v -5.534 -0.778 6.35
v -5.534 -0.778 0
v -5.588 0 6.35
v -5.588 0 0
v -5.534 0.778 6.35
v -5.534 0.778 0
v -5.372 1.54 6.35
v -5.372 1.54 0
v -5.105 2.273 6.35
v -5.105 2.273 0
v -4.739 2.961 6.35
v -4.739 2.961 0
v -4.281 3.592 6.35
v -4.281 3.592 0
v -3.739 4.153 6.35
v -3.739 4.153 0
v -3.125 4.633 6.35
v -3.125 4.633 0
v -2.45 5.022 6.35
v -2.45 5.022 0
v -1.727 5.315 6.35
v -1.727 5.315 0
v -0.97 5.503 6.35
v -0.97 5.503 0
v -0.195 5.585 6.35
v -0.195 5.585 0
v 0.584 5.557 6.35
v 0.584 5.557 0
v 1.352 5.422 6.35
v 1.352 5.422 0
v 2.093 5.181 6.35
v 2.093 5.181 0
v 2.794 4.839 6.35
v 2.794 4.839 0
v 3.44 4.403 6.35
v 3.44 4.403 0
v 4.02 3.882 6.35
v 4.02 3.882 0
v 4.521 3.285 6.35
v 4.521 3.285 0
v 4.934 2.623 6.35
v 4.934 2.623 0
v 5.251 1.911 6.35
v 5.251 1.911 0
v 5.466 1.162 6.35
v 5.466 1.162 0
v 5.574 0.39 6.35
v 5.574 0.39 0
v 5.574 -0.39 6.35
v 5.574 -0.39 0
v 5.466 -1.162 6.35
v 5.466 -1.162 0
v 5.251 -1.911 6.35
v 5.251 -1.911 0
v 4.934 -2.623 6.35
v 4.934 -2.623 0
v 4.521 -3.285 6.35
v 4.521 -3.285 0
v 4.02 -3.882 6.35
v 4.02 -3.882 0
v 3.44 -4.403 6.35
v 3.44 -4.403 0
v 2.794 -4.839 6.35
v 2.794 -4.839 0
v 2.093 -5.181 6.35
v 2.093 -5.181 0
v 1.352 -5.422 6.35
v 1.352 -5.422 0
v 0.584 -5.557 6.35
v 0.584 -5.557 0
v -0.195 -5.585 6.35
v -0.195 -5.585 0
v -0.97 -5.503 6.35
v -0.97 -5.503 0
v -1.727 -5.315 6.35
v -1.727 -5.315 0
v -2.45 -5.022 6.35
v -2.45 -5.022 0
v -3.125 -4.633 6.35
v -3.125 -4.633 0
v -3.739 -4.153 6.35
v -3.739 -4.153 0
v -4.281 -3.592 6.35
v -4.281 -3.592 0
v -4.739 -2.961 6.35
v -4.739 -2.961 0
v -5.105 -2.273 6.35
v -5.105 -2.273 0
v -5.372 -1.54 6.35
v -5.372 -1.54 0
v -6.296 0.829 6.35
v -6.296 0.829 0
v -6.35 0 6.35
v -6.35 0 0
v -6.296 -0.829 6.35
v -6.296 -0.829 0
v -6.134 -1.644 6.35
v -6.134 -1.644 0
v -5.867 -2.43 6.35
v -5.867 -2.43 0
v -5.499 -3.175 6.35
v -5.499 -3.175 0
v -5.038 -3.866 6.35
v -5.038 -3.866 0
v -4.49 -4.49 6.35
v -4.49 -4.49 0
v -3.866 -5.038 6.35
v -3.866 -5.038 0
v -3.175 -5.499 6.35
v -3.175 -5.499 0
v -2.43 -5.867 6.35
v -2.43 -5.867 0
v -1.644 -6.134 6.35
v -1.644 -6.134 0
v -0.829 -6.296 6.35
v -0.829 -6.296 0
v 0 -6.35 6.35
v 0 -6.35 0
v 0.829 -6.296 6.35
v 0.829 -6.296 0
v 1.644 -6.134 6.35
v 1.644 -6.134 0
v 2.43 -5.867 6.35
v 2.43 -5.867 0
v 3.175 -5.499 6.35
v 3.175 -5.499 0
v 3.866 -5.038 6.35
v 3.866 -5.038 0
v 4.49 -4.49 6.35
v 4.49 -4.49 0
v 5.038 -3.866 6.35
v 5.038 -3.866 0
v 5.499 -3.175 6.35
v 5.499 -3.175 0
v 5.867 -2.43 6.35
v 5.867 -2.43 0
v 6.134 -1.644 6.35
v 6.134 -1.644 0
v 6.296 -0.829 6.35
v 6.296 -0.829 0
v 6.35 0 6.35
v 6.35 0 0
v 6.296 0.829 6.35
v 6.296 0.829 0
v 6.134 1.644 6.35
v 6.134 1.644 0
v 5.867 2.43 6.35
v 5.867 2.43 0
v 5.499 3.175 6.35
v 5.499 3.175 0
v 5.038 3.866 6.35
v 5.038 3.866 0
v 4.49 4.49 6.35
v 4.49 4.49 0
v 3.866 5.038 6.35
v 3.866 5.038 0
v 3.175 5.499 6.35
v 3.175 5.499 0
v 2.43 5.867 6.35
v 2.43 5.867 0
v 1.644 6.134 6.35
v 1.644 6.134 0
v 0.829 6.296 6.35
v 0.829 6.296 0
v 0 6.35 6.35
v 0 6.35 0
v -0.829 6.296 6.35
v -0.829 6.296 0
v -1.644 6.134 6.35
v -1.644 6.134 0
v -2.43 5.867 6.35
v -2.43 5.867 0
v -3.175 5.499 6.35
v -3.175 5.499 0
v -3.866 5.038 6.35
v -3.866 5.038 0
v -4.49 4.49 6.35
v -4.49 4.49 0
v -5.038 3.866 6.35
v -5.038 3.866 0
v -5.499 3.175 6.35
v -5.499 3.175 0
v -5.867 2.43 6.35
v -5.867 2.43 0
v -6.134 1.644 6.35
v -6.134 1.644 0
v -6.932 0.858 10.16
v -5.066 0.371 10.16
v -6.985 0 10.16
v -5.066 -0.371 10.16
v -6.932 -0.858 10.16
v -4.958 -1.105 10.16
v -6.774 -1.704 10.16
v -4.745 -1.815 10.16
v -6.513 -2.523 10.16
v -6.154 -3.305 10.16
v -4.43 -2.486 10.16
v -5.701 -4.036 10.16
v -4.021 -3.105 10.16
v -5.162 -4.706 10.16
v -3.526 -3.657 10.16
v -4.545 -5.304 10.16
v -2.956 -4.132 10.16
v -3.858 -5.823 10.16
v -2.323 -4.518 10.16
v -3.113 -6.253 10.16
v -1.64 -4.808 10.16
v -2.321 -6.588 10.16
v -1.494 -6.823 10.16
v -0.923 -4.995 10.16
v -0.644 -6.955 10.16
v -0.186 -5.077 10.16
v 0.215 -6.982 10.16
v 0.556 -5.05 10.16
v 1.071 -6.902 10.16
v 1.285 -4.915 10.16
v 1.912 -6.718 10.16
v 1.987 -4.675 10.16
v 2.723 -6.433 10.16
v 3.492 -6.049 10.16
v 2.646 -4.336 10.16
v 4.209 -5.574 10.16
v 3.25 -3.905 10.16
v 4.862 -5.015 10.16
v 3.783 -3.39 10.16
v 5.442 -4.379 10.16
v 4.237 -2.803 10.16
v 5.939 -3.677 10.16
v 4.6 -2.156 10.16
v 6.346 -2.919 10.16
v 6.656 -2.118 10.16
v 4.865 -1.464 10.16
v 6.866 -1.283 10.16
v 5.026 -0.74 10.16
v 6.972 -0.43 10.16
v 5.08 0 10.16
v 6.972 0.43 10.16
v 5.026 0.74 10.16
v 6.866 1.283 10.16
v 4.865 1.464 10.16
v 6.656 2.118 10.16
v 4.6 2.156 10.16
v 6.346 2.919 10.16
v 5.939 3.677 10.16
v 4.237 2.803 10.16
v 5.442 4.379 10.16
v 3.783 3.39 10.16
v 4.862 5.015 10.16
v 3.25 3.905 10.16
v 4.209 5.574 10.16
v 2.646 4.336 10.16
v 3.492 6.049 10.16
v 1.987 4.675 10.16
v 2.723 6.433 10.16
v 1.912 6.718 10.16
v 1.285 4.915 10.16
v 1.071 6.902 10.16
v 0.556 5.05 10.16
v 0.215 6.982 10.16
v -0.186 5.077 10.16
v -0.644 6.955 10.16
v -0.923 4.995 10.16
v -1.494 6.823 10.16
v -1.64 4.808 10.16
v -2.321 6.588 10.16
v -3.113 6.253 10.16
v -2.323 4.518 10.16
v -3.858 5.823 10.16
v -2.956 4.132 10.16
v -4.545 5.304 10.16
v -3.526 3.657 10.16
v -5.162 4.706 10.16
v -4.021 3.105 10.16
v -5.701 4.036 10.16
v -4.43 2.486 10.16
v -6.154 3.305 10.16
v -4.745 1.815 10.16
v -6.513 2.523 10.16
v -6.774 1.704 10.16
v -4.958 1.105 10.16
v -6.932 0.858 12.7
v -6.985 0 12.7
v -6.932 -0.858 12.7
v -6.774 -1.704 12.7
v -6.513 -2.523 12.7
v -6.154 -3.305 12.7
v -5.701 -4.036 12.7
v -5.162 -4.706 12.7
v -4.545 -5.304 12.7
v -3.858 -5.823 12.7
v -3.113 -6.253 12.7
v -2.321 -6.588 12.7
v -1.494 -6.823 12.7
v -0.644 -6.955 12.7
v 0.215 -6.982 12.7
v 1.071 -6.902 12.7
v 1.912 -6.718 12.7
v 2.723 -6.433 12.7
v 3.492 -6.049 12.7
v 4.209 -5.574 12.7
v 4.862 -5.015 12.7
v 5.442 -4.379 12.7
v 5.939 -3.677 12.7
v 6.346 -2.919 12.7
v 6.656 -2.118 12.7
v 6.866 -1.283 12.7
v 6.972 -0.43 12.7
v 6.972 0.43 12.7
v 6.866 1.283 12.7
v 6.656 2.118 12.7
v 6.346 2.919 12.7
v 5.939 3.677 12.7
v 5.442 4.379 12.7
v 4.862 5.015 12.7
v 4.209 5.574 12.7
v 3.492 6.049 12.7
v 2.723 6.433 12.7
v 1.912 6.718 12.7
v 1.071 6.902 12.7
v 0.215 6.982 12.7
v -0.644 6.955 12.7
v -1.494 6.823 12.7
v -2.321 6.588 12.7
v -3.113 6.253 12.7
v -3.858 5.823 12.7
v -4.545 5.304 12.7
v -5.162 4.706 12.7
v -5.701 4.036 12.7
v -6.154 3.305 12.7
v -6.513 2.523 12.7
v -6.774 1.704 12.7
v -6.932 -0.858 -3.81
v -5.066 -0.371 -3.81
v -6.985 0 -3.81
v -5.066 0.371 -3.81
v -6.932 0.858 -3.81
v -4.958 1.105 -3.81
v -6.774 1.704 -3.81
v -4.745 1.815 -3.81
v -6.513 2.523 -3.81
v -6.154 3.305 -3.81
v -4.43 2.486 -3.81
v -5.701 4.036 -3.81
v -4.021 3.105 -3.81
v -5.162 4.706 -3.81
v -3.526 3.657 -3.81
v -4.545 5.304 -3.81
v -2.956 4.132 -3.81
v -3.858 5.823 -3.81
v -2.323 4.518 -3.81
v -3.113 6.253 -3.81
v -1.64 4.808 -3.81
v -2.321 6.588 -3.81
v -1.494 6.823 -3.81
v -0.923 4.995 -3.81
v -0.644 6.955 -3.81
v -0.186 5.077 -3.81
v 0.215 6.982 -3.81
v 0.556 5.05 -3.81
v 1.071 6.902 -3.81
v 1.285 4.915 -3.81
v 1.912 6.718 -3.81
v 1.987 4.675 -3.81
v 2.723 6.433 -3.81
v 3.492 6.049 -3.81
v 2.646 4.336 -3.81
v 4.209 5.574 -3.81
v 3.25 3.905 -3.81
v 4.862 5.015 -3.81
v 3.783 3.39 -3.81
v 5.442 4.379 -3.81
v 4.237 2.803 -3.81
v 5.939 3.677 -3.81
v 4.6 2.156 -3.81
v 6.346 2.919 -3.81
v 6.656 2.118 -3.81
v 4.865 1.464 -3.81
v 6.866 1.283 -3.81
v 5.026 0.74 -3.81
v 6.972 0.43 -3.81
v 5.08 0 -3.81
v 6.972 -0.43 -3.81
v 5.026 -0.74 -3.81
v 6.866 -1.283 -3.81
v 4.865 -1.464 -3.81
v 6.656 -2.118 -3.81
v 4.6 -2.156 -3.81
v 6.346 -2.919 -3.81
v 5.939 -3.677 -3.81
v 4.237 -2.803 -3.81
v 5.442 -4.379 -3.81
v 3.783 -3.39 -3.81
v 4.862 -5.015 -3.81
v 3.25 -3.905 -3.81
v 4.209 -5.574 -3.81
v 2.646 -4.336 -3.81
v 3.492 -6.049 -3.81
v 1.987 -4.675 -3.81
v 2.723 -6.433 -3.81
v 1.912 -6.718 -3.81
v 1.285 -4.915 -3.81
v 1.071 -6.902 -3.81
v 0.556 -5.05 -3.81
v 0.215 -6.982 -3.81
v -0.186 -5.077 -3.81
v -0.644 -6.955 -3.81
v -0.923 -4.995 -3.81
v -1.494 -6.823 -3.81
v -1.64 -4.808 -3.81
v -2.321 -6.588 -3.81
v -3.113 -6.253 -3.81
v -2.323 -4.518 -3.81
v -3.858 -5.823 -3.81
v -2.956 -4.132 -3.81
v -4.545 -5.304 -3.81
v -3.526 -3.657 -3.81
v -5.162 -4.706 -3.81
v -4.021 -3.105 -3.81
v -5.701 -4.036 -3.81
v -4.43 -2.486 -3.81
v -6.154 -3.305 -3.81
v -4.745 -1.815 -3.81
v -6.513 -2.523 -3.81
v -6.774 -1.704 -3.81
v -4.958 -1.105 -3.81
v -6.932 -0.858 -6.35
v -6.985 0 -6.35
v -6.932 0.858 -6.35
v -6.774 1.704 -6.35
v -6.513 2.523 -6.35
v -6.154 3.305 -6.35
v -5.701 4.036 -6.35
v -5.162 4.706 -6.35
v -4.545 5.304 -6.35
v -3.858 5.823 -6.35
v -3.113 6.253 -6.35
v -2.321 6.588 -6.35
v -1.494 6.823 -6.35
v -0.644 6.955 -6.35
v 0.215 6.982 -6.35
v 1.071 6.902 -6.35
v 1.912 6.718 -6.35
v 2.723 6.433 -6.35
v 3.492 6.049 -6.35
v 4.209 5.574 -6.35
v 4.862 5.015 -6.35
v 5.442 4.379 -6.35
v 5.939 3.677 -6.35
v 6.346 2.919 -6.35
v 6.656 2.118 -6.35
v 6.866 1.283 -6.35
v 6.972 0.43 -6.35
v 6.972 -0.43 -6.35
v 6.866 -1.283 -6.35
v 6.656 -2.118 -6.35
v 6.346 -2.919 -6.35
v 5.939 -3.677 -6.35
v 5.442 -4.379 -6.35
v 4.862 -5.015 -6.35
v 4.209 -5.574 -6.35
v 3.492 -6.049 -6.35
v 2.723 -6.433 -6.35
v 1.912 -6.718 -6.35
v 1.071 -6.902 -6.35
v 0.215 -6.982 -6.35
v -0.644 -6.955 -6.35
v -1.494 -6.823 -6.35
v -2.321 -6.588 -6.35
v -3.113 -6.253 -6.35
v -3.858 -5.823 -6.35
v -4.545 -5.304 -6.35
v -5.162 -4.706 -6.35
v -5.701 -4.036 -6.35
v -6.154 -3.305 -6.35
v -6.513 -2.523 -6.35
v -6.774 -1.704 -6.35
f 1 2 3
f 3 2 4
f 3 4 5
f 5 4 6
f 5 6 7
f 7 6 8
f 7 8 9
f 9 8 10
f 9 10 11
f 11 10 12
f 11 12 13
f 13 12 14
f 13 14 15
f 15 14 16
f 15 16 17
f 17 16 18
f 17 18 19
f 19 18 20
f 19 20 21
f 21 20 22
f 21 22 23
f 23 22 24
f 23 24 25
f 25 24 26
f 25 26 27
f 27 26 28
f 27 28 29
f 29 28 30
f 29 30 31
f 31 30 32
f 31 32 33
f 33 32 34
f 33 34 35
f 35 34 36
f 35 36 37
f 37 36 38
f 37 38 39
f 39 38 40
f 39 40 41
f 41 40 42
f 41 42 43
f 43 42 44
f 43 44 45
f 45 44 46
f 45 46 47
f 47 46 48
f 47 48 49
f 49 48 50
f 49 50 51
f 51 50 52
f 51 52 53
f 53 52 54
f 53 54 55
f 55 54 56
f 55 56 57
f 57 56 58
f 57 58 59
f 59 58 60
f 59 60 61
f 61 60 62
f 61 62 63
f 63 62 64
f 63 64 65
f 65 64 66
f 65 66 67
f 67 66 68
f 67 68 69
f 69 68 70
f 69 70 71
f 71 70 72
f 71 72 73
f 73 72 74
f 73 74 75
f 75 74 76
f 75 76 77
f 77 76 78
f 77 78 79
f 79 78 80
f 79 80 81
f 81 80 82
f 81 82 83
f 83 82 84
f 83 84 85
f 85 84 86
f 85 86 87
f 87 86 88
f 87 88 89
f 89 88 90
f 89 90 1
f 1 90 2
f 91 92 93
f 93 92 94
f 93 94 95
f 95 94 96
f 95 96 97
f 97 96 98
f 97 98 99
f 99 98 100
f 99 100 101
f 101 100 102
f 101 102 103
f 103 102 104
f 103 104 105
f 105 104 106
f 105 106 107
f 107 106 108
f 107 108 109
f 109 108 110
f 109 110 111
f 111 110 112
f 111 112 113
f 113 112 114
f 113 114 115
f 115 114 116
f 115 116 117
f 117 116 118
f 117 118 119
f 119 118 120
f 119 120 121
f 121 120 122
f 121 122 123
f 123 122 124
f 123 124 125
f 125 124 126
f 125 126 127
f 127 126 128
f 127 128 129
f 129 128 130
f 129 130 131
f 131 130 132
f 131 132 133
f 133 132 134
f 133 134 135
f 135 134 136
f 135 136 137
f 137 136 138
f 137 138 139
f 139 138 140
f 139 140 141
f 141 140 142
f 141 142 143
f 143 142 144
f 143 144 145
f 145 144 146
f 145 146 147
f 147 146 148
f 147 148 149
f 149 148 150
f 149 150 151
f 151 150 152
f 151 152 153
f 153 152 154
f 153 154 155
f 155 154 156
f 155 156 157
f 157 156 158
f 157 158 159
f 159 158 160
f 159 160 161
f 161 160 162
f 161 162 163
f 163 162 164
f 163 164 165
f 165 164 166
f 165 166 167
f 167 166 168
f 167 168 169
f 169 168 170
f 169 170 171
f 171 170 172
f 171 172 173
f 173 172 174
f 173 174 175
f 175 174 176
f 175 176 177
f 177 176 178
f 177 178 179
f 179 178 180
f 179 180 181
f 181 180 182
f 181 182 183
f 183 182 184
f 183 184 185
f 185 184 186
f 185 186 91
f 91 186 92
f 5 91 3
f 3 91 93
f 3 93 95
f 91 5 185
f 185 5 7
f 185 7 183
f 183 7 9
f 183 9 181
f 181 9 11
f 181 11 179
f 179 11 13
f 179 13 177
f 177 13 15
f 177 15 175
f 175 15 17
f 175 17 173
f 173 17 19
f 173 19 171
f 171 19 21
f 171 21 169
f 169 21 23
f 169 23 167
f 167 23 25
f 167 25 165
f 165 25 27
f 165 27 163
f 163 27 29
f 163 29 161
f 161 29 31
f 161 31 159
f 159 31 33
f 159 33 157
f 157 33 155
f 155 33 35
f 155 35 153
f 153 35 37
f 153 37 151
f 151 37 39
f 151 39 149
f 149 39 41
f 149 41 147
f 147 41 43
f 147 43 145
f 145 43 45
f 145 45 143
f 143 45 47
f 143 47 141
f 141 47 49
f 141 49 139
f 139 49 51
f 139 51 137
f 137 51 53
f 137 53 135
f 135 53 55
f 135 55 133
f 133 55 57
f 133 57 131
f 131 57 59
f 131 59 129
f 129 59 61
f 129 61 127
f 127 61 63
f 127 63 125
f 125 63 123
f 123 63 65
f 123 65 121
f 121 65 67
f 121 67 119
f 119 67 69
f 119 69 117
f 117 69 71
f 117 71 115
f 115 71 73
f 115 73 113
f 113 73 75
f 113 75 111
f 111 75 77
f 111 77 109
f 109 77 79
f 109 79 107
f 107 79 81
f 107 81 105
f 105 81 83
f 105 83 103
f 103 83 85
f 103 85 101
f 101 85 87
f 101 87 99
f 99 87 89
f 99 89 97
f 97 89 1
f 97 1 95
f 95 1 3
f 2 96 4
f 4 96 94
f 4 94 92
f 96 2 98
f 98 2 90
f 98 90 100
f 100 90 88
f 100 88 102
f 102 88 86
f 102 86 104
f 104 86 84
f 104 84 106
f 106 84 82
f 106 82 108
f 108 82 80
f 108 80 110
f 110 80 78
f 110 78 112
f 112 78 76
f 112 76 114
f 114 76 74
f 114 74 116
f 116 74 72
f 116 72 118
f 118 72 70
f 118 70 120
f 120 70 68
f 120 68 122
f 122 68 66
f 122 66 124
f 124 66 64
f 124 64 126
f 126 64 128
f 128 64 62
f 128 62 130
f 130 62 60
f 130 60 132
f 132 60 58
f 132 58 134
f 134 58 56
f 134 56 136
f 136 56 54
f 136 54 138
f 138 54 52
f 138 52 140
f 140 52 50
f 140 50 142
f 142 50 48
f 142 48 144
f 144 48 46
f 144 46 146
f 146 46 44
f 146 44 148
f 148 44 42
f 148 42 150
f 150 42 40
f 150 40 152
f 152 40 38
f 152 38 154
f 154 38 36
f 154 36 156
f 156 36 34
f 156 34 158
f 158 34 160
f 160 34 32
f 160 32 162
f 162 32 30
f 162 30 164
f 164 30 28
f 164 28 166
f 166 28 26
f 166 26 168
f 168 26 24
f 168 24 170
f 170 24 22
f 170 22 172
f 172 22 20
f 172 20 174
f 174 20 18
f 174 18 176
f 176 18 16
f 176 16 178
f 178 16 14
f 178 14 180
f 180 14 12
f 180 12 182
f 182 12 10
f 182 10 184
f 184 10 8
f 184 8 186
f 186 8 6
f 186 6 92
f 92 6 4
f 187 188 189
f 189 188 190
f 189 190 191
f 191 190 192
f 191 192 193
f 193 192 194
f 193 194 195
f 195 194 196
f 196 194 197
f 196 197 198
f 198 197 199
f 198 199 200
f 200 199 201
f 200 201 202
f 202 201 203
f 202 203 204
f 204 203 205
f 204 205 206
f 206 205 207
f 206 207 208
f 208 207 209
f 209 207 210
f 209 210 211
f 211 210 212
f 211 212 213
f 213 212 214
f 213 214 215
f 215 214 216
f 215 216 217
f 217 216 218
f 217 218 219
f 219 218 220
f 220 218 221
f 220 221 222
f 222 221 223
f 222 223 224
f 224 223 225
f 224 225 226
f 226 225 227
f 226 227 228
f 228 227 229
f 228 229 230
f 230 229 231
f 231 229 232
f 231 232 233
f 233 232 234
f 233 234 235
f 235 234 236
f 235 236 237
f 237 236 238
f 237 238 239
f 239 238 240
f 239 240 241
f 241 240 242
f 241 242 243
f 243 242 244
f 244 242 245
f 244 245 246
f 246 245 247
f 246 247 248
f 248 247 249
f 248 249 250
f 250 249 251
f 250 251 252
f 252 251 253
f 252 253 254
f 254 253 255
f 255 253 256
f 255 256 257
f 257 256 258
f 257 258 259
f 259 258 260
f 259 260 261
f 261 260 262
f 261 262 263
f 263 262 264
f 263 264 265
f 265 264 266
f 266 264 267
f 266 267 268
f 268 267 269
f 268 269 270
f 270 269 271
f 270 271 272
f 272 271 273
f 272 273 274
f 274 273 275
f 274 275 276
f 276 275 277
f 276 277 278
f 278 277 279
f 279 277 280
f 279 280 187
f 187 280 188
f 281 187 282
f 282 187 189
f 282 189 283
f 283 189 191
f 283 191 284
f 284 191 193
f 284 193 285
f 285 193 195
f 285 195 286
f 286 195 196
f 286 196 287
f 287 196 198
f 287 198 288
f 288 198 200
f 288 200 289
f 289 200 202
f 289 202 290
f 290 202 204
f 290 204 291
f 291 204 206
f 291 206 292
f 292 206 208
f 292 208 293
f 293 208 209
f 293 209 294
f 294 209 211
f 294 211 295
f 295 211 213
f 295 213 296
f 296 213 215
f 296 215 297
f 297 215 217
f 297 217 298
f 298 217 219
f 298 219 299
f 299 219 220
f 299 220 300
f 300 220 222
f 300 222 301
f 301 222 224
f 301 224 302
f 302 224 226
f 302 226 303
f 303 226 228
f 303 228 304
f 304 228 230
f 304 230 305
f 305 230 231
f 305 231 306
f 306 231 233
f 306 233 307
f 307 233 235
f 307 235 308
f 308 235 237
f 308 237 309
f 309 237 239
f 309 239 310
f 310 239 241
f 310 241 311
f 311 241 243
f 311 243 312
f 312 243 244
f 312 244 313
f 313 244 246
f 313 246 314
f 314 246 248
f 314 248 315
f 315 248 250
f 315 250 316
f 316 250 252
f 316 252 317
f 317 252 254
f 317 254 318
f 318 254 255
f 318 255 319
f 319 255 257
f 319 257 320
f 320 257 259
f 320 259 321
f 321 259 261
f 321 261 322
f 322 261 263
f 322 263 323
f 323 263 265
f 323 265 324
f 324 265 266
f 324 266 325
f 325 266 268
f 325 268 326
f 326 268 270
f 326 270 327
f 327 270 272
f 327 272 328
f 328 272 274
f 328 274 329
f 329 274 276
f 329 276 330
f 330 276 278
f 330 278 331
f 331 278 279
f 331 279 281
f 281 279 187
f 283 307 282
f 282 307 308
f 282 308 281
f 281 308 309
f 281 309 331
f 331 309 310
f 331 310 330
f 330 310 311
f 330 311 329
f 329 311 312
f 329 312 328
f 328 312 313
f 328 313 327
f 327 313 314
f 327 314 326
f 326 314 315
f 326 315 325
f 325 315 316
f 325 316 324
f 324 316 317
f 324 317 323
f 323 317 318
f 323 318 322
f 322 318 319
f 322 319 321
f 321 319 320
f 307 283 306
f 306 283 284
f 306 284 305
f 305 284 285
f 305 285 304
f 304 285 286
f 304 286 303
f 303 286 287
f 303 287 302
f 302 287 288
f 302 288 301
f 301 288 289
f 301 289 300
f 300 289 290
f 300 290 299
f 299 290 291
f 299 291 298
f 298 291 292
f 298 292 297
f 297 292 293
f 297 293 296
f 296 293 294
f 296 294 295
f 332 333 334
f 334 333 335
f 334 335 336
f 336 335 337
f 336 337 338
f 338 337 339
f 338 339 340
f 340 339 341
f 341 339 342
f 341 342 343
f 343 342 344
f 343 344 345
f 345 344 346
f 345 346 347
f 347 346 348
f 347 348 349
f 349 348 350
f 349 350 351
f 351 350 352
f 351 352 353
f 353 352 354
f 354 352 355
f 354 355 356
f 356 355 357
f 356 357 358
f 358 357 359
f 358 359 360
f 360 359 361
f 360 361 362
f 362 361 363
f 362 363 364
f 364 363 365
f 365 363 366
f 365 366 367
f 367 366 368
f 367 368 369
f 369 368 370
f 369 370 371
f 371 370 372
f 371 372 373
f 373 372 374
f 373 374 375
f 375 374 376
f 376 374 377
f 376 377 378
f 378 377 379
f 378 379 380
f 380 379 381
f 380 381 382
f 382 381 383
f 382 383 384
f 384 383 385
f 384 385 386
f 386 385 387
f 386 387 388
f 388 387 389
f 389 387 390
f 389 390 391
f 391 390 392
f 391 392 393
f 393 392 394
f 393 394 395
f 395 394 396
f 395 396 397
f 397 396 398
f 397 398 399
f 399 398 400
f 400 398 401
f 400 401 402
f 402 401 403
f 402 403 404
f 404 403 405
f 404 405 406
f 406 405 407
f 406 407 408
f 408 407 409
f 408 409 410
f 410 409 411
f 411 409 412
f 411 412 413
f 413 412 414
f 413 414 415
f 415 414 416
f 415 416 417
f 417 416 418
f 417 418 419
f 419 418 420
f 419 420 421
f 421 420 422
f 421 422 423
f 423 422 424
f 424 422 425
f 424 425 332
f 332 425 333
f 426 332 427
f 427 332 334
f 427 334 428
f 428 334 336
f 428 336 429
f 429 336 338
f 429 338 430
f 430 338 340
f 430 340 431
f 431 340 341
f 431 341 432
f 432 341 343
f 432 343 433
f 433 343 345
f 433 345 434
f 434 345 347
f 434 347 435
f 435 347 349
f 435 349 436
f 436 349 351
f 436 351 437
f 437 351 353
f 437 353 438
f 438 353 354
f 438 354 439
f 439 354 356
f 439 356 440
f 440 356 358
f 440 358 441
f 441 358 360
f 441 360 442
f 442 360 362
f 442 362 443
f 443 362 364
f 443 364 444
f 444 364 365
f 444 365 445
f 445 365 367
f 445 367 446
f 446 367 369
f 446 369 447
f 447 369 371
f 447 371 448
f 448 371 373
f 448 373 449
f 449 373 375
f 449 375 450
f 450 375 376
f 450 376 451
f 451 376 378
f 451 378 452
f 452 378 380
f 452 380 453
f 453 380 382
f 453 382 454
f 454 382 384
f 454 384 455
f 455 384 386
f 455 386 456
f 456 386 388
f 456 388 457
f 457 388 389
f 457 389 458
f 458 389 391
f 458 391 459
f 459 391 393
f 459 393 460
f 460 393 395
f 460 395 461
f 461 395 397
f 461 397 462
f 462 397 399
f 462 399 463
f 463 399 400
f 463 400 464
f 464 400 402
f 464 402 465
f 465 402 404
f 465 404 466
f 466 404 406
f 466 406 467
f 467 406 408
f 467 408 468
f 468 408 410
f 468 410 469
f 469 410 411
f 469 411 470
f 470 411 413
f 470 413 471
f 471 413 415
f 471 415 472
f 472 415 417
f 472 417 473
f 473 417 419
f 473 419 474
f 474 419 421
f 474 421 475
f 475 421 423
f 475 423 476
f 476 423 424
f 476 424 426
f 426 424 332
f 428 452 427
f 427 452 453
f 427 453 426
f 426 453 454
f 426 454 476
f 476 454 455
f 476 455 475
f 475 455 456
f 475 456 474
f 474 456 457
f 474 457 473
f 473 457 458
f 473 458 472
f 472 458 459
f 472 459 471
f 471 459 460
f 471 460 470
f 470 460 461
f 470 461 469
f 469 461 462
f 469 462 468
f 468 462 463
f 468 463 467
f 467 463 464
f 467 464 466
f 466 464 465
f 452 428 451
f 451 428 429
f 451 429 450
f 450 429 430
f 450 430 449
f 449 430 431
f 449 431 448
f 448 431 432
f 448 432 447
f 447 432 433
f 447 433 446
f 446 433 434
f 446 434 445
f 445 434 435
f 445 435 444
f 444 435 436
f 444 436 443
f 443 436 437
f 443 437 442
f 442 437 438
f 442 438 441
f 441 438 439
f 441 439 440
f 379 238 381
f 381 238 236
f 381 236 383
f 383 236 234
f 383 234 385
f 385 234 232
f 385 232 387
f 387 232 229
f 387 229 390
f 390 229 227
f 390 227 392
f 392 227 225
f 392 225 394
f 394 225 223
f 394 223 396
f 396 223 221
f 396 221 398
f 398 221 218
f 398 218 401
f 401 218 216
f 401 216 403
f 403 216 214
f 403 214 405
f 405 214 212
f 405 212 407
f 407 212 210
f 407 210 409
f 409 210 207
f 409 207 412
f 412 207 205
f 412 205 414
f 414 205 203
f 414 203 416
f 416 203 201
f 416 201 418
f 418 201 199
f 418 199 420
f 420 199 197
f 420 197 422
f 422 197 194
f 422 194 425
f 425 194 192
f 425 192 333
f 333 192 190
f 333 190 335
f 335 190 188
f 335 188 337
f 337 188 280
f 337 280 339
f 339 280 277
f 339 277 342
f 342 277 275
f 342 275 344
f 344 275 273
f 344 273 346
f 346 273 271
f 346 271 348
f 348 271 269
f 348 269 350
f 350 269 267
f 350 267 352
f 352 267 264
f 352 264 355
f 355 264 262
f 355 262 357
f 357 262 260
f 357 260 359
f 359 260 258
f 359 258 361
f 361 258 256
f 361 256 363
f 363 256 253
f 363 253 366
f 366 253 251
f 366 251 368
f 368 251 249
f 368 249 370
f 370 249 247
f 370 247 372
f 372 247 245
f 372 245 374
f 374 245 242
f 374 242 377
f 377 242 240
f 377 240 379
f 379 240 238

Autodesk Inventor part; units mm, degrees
ref_plane "YZ Plane" through (0, 0, 0) normal (1, 0, 0) x (0, 1, 0)
ref_plane "XZ Plane" through (0, 0, 0) normal (0, 1, 0) x (-1, 0, 0)
sketch "Sketch1" plane through (0, 0, 0) normal (0, 0, 1) x (1, 0, 0)
  circle A0 centre (0, 0) radius 5.08
  dimension "d0" = 10.16
extrude "Extrusion1" add sketch "Sketch1" along normal blind 10.16
ref_plane "Work Plane1" through (0, 0, 5.08) normal (0, 0, -1) x (-1, 0, 0)
sketch "Sketch4" plane through (0, 0, 0) normal (0, 0, -1) x (-1, 0, 0)
  circle A0 centre (0, 0) radius 5.588
  circle A1 centre (0, 0) radius 6.35
  dimension "d13" = 11.176
  dimension "d14" = 12.7
extrude "Extrusion4" add sketch "Sketch4" against normal blind 6.35
extrude "Extrusion5" add sketch "Sketch1" against normal blind 3.81
sketch "Sketch5" plane through (0, 0, -3.81) normal (0, 0, -1) x (-1, 0, 0)
  circle A0 centre (0, 0) radius 6.985
  dimension "d25" = 13.97
extrude "Extrusion6" add sketch "Sketch5" along normal blind 2.54
ref_plane "Work Plane2" through (0, 0, 3.175) normal (0, 0, 1) x (1, 0, 0)
mirror "Mirror2" about plane through (0, 0, 3.175) normal (0, 0, 1) of "Extrusion6"
properties part number "Ring Tolerance Test 6"
